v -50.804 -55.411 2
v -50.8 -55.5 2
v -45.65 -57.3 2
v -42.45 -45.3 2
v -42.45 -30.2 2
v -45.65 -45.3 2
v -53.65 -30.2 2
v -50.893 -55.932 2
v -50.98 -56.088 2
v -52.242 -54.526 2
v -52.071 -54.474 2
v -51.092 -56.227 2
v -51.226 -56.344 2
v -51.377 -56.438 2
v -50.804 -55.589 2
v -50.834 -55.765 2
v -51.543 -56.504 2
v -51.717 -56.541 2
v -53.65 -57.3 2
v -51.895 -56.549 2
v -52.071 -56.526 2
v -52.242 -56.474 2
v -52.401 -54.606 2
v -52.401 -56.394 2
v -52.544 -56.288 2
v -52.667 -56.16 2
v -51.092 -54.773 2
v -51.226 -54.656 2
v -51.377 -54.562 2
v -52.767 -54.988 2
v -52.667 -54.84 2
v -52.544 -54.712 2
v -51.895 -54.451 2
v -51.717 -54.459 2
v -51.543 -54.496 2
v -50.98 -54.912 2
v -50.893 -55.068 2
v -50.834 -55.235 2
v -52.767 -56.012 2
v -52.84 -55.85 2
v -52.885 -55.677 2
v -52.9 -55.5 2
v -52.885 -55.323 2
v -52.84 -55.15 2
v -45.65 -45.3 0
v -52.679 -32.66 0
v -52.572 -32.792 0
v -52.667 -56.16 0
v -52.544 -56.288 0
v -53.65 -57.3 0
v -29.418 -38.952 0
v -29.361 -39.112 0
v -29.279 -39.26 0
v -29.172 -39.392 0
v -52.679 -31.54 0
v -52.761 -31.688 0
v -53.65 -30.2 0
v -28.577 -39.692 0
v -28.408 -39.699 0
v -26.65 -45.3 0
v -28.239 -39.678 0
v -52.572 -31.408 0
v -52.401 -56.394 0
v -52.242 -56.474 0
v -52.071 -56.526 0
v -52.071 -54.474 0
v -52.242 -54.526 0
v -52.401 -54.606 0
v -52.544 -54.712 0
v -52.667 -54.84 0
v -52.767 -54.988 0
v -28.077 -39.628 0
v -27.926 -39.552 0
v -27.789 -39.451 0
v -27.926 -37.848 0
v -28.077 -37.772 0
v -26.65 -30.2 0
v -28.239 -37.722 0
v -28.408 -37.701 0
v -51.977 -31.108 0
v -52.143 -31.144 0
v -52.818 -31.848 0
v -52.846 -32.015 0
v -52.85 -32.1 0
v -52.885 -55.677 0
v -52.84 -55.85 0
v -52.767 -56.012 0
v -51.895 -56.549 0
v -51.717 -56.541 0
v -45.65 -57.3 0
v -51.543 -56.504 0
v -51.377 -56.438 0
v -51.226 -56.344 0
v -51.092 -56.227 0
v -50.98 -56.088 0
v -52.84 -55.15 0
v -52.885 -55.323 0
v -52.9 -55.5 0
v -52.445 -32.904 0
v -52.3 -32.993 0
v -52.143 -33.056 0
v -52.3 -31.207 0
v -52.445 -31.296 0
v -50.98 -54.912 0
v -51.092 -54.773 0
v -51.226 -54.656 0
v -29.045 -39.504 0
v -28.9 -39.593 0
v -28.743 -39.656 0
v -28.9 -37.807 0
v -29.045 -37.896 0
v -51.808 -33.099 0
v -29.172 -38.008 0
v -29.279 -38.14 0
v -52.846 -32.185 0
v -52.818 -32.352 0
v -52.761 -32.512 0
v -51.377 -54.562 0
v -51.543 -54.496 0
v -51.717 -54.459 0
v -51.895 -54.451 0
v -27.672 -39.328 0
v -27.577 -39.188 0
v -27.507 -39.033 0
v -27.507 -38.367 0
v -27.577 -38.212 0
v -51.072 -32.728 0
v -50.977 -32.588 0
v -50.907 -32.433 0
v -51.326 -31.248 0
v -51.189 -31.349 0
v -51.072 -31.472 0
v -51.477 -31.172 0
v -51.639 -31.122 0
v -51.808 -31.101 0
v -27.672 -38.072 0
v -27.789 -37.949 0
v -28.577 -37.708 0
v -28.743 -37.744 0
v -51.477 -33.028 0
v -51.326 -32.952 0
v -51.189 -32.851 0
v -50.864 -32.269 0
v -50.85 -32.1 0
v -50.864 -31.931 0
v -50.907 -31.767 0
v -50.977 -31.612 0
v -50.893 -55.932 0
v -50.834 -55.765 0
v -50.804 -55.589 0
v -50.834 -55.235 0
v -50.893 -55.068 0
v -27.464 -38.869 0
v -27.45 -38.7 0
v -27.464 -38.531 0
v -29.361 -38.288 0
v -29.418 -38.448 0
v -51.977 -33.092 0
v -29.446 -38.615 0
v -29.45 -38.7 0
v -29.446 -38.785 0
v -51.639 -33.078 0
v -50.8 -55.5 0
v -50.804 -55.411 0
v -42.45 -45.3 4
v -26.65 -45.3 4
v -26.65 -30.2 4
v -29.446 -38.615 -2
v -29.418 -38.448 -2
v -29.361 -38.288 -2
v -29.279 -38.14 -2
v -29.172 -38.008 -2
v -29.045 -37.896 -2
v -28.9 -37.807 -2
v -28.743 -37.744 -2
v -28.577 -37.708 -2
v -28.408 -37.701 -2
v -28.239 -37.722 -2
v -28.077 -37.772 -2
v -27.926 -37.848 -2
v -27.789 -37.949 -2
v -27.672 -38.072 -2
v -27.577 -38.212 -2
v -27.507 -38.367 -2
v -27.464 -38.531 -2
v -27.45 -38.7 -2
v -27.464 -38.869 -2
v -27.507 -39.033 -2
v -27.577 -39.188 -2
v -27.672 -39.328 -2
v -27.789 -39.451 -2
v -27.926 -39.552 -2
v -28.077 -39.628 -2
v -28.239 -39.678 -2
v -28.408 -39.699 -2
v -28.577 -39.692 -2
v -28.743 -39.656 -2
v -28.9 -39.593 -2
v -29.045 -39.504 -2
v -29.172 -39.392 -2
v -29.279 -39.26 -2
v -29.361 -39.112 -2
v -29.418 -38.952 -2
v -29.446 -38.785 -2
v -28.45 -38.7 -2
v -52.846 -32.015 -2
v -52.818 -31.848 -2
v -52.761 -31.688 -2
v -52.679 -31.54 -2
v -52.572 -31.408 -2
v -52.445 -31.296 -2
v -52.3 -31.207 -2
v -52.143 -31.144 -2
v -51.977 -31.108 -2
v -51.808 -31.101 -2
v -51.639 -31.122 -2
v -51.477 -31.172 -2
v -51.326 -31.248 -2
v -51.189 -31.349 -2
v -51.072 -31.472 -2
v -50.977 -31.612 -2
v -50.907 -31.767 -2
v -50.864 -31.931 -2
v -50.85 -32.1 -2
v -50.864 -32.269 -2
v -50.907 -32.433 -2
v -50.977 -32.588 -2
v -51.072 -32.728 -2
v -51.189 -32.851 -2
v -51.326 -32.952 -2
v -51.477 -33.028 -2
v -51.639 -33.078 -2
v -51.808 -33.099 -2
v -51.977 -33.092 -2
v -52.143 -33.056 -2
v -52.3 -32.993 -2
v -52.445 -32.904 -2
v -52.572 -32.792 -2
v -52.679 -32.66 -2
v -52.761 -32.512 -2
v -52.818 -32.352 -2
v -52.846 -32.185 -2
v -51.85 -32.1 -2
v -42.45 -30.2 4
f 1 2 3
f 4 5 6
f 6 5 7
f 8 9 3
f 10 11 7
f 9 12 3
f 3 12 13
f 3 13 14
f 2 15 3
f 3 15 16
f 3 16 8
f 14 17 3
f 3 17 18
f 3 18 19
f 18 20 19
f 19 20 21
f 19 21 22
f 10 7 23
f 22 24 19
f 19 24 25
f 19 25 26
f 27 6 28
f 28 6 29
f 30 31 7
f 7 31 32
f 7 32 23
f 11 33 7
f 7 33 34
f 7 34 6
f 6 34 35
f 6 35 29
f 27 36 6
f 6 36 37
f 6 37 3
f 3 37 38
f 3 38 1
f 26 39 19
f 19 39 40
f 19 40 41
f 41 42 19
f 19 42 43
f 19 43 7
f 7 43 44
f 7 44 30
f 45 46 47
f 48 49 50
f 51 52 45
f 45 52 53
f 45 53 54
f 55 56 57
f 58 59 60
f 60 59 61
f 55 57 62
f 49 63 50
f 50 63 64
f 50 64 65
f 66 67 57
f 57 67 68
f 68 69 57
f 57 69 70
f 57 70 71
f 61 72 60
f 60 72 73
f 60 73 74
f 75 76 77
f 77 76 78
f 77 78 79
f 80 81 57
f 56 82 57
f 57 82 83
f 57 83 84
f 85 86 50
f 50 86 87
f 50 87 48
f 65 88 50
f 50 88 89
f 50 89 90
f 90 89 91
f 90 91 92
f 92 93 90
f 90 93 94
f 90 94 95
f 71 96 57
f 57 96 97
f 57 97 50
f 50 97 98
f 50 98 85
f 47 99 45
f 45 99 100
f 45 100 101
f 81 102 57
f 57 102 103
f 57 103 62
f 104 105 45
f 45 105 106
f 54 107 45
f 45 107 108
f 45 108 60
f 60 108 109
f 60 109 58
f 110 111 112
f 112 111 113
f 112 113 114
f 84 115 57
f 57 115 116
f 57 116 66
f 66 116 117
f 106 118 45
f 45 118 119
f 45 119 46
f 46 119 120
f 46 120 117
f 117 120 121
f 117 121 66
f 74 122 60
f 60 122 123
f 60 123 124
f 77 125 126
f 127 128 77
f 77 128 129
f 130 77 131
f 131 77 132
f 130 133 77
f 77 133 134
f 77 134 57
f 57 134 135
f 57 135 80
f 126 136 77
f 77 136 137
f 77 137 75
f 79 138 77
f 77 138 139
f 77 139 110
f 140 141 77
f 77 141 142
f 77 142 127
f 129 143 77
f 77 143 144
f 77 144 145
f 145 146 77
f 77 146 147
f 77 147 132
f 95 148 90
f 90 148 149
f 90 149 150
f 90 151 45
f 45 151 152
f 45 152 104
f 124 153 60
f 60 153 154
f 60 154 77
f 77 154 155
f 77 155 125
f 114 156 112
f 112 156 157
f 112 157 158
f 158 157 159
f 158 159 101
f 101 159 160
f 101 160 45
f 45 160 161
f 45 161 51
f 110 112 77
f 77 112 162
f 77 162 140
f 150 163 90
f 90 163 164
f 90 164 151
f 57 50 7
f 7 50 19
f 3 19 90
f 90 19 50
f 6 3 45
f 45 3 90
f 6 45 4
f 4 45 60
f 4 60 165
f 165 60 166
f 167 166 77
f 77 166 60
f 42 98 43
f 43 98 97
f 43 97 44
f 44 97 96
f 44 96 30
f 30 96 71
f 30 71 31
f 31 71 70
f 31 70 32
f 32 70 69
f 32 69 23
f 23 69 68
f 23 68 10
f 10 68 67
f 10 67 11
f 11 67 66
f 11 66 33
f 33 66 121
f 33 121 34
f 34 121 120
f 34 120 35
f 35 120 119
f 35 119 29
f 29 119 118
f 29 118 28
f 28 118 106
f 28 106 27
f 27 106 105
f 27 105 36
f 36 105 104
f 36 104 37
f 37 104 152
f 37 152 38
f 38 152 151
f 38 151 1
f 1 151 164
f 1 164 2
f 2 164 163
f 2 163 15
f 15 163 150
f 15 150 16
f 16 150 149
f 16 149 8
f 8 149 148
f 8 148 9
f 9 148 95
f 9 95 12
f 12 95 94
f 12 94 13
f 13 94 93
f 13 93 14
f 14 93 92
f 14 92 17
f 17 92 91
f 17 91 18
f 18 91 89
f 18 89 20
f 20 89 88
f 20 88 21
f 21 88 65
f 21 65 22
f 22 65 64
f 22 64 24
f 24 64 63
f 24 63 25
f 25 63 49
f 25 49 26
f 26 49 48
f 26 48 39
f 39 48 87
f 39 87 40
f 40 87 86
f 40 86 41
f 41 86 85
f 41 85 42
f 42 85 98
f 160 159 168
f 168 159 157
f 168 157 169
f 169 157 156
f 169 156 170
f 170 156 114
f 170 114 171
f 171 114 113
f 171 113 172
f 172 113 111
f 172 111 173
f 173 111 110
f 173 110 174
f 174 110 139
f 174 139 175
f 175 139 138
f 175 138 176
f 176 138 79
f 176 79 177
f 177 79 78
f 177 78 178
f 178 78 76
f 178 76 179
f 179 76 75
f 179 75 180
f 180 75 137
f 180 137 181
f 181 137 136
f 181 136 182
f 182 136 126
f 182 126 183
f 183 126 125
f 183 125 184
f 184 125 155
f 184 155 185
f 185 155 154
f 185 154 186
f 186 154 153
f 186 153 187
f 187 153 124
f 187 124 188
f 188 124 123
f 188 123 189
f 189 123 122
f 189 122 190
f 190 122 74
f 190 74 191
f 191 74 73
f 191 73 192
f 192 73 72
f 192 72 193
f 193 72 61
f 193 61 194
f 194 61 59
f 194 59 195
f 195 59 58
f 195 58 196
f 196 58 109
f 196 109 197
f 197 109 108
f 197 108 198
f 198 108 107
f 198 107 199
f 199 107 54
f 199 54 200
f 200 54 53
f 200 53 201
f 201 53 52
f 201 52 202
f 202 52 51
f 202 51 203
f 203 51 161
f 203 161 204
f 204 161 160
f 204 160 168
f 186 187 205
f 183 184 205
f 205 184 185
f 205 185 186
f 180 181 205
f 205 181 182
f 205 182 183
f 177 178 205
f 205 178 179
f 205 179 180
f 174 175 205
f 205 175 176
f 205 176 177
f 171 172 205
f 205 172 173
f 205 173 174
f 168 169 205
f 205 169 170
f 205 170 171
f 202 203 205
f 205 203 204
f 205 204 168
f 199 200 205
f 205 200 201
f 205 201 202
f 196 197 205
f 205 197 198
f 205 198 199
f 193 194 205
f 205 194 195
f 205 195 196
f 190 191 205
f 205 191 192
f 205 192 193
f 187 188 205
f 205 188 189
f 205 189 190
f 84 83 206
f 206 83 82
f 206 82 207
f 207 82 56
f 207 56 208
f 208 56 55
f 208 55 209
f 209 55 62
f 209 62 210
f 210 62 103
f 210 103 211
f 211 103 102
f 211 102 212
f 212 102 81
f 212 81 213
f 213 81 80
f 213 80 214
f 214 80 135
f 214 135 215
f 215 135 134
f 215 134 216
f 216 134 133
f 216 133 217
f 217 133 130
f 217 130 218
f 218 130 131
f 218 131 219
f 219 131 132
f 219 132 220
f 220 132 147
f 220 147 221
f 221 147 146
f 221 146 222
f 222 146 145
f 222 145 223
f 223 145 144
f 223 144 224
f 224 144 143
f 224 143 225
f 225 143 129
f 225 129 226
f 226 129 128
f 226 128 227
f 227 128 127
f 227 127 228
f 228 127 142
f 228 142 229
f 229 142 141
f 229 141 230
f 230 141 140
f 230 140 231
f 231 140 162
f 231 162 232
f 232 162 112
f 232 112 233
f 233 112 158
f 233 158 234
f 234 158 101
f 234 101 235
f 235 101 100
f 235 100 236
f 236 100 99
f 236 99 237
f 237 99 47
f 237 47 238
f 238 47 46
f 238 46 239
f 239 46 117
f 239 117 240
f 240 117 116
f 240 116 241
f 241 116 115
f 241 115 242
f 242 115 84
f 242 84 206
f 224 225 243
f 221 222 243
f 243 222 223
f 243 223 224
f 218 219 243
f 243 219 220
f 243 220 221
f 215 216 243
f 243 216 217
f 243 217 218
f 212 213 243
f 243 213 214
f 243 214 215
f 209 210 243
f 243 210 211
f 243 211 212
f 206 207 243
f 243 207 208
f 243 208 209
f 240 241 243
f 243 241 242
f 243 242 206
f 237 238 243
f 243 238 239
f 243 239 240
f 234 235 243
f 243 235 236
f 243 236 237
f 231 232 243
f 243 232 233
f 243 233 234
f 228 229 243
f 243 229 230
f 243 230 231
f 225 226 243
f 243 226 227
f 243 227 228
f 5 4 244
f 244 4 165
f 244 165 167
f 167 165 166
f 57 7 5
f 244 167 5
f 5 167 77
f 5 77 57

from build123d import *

# Parameters (mm, degrees)
SKETCH1_R           = 1.05
BOSS_EXTRUDE1_DEPTH = 2
SKETCH2_R           = 1
BOSS_EXTRUDE2_DEPTH = 4
SKETCH3_W           = 15.8
SKETCH3_H           = 15.3
BOSS_EXTRUDE3_DEPTH = 2
SKETCH4_W           = 27
SKETCH4_H           = 0.2
CUT_EXTRUDE1_DEPTH  = 79.597789409


with BuildPart() as part:
    # Sketch1 → Boss-Extrude1 (new body)
    with BuildSketch(Plane.XY):
        Polygon((-53.65, -57.3), (-45.65, -57.3), (-45.65, -45.3), (-26.65, -45.3), (-26.65, -30), (-53.65, -30), align=None)
        with Locations((-51.85, -55.5)):
            Circle(SKETCH1_R, mode=Mode.SUBTRACT)
    extrude(amount=BOSS_EXTRUDE1_DEPTH)

    # Sketch2 → Boss-Extrude2 (add)
    with BuildSketch(Plane.XY.offset(2)):
        with Locations((-28.45, -38.7)):
            Circle(SKETCH2_R)
        with Locations((-51.85, -32.1)):
            Circle(SKETCH2_R)
    extrude(amount=-BOSS_EXTRUDE2_DEPTH)

    # Sketch3 → Boss-Extrude3 (add)
    with BuildSketch(Plane.XY.offset(2)):
        with Locations((-34.55, -37.65)):
            Rectangle(SKETCH3_W, SKETCH3_H)
    extrude(amount=BOSS_EXTRUDE3_DEPTH)

    # Sketch4 → Cut-Extrude1 (cut, through all)
    with BuildSketch(Plane(origin=(0, 0, 0), x_dir=(-1, 0, 0), z_dir=(0, 0, -1))):
        with Locations((40.15, -30.1)):
            Rectangle(SKETCH4_W, SKETCH4_H)
    extrude(amount=-CUT_EXTRUDE1_DEPTH, mode=Mode.SUBTRACT)


solid = part.part
